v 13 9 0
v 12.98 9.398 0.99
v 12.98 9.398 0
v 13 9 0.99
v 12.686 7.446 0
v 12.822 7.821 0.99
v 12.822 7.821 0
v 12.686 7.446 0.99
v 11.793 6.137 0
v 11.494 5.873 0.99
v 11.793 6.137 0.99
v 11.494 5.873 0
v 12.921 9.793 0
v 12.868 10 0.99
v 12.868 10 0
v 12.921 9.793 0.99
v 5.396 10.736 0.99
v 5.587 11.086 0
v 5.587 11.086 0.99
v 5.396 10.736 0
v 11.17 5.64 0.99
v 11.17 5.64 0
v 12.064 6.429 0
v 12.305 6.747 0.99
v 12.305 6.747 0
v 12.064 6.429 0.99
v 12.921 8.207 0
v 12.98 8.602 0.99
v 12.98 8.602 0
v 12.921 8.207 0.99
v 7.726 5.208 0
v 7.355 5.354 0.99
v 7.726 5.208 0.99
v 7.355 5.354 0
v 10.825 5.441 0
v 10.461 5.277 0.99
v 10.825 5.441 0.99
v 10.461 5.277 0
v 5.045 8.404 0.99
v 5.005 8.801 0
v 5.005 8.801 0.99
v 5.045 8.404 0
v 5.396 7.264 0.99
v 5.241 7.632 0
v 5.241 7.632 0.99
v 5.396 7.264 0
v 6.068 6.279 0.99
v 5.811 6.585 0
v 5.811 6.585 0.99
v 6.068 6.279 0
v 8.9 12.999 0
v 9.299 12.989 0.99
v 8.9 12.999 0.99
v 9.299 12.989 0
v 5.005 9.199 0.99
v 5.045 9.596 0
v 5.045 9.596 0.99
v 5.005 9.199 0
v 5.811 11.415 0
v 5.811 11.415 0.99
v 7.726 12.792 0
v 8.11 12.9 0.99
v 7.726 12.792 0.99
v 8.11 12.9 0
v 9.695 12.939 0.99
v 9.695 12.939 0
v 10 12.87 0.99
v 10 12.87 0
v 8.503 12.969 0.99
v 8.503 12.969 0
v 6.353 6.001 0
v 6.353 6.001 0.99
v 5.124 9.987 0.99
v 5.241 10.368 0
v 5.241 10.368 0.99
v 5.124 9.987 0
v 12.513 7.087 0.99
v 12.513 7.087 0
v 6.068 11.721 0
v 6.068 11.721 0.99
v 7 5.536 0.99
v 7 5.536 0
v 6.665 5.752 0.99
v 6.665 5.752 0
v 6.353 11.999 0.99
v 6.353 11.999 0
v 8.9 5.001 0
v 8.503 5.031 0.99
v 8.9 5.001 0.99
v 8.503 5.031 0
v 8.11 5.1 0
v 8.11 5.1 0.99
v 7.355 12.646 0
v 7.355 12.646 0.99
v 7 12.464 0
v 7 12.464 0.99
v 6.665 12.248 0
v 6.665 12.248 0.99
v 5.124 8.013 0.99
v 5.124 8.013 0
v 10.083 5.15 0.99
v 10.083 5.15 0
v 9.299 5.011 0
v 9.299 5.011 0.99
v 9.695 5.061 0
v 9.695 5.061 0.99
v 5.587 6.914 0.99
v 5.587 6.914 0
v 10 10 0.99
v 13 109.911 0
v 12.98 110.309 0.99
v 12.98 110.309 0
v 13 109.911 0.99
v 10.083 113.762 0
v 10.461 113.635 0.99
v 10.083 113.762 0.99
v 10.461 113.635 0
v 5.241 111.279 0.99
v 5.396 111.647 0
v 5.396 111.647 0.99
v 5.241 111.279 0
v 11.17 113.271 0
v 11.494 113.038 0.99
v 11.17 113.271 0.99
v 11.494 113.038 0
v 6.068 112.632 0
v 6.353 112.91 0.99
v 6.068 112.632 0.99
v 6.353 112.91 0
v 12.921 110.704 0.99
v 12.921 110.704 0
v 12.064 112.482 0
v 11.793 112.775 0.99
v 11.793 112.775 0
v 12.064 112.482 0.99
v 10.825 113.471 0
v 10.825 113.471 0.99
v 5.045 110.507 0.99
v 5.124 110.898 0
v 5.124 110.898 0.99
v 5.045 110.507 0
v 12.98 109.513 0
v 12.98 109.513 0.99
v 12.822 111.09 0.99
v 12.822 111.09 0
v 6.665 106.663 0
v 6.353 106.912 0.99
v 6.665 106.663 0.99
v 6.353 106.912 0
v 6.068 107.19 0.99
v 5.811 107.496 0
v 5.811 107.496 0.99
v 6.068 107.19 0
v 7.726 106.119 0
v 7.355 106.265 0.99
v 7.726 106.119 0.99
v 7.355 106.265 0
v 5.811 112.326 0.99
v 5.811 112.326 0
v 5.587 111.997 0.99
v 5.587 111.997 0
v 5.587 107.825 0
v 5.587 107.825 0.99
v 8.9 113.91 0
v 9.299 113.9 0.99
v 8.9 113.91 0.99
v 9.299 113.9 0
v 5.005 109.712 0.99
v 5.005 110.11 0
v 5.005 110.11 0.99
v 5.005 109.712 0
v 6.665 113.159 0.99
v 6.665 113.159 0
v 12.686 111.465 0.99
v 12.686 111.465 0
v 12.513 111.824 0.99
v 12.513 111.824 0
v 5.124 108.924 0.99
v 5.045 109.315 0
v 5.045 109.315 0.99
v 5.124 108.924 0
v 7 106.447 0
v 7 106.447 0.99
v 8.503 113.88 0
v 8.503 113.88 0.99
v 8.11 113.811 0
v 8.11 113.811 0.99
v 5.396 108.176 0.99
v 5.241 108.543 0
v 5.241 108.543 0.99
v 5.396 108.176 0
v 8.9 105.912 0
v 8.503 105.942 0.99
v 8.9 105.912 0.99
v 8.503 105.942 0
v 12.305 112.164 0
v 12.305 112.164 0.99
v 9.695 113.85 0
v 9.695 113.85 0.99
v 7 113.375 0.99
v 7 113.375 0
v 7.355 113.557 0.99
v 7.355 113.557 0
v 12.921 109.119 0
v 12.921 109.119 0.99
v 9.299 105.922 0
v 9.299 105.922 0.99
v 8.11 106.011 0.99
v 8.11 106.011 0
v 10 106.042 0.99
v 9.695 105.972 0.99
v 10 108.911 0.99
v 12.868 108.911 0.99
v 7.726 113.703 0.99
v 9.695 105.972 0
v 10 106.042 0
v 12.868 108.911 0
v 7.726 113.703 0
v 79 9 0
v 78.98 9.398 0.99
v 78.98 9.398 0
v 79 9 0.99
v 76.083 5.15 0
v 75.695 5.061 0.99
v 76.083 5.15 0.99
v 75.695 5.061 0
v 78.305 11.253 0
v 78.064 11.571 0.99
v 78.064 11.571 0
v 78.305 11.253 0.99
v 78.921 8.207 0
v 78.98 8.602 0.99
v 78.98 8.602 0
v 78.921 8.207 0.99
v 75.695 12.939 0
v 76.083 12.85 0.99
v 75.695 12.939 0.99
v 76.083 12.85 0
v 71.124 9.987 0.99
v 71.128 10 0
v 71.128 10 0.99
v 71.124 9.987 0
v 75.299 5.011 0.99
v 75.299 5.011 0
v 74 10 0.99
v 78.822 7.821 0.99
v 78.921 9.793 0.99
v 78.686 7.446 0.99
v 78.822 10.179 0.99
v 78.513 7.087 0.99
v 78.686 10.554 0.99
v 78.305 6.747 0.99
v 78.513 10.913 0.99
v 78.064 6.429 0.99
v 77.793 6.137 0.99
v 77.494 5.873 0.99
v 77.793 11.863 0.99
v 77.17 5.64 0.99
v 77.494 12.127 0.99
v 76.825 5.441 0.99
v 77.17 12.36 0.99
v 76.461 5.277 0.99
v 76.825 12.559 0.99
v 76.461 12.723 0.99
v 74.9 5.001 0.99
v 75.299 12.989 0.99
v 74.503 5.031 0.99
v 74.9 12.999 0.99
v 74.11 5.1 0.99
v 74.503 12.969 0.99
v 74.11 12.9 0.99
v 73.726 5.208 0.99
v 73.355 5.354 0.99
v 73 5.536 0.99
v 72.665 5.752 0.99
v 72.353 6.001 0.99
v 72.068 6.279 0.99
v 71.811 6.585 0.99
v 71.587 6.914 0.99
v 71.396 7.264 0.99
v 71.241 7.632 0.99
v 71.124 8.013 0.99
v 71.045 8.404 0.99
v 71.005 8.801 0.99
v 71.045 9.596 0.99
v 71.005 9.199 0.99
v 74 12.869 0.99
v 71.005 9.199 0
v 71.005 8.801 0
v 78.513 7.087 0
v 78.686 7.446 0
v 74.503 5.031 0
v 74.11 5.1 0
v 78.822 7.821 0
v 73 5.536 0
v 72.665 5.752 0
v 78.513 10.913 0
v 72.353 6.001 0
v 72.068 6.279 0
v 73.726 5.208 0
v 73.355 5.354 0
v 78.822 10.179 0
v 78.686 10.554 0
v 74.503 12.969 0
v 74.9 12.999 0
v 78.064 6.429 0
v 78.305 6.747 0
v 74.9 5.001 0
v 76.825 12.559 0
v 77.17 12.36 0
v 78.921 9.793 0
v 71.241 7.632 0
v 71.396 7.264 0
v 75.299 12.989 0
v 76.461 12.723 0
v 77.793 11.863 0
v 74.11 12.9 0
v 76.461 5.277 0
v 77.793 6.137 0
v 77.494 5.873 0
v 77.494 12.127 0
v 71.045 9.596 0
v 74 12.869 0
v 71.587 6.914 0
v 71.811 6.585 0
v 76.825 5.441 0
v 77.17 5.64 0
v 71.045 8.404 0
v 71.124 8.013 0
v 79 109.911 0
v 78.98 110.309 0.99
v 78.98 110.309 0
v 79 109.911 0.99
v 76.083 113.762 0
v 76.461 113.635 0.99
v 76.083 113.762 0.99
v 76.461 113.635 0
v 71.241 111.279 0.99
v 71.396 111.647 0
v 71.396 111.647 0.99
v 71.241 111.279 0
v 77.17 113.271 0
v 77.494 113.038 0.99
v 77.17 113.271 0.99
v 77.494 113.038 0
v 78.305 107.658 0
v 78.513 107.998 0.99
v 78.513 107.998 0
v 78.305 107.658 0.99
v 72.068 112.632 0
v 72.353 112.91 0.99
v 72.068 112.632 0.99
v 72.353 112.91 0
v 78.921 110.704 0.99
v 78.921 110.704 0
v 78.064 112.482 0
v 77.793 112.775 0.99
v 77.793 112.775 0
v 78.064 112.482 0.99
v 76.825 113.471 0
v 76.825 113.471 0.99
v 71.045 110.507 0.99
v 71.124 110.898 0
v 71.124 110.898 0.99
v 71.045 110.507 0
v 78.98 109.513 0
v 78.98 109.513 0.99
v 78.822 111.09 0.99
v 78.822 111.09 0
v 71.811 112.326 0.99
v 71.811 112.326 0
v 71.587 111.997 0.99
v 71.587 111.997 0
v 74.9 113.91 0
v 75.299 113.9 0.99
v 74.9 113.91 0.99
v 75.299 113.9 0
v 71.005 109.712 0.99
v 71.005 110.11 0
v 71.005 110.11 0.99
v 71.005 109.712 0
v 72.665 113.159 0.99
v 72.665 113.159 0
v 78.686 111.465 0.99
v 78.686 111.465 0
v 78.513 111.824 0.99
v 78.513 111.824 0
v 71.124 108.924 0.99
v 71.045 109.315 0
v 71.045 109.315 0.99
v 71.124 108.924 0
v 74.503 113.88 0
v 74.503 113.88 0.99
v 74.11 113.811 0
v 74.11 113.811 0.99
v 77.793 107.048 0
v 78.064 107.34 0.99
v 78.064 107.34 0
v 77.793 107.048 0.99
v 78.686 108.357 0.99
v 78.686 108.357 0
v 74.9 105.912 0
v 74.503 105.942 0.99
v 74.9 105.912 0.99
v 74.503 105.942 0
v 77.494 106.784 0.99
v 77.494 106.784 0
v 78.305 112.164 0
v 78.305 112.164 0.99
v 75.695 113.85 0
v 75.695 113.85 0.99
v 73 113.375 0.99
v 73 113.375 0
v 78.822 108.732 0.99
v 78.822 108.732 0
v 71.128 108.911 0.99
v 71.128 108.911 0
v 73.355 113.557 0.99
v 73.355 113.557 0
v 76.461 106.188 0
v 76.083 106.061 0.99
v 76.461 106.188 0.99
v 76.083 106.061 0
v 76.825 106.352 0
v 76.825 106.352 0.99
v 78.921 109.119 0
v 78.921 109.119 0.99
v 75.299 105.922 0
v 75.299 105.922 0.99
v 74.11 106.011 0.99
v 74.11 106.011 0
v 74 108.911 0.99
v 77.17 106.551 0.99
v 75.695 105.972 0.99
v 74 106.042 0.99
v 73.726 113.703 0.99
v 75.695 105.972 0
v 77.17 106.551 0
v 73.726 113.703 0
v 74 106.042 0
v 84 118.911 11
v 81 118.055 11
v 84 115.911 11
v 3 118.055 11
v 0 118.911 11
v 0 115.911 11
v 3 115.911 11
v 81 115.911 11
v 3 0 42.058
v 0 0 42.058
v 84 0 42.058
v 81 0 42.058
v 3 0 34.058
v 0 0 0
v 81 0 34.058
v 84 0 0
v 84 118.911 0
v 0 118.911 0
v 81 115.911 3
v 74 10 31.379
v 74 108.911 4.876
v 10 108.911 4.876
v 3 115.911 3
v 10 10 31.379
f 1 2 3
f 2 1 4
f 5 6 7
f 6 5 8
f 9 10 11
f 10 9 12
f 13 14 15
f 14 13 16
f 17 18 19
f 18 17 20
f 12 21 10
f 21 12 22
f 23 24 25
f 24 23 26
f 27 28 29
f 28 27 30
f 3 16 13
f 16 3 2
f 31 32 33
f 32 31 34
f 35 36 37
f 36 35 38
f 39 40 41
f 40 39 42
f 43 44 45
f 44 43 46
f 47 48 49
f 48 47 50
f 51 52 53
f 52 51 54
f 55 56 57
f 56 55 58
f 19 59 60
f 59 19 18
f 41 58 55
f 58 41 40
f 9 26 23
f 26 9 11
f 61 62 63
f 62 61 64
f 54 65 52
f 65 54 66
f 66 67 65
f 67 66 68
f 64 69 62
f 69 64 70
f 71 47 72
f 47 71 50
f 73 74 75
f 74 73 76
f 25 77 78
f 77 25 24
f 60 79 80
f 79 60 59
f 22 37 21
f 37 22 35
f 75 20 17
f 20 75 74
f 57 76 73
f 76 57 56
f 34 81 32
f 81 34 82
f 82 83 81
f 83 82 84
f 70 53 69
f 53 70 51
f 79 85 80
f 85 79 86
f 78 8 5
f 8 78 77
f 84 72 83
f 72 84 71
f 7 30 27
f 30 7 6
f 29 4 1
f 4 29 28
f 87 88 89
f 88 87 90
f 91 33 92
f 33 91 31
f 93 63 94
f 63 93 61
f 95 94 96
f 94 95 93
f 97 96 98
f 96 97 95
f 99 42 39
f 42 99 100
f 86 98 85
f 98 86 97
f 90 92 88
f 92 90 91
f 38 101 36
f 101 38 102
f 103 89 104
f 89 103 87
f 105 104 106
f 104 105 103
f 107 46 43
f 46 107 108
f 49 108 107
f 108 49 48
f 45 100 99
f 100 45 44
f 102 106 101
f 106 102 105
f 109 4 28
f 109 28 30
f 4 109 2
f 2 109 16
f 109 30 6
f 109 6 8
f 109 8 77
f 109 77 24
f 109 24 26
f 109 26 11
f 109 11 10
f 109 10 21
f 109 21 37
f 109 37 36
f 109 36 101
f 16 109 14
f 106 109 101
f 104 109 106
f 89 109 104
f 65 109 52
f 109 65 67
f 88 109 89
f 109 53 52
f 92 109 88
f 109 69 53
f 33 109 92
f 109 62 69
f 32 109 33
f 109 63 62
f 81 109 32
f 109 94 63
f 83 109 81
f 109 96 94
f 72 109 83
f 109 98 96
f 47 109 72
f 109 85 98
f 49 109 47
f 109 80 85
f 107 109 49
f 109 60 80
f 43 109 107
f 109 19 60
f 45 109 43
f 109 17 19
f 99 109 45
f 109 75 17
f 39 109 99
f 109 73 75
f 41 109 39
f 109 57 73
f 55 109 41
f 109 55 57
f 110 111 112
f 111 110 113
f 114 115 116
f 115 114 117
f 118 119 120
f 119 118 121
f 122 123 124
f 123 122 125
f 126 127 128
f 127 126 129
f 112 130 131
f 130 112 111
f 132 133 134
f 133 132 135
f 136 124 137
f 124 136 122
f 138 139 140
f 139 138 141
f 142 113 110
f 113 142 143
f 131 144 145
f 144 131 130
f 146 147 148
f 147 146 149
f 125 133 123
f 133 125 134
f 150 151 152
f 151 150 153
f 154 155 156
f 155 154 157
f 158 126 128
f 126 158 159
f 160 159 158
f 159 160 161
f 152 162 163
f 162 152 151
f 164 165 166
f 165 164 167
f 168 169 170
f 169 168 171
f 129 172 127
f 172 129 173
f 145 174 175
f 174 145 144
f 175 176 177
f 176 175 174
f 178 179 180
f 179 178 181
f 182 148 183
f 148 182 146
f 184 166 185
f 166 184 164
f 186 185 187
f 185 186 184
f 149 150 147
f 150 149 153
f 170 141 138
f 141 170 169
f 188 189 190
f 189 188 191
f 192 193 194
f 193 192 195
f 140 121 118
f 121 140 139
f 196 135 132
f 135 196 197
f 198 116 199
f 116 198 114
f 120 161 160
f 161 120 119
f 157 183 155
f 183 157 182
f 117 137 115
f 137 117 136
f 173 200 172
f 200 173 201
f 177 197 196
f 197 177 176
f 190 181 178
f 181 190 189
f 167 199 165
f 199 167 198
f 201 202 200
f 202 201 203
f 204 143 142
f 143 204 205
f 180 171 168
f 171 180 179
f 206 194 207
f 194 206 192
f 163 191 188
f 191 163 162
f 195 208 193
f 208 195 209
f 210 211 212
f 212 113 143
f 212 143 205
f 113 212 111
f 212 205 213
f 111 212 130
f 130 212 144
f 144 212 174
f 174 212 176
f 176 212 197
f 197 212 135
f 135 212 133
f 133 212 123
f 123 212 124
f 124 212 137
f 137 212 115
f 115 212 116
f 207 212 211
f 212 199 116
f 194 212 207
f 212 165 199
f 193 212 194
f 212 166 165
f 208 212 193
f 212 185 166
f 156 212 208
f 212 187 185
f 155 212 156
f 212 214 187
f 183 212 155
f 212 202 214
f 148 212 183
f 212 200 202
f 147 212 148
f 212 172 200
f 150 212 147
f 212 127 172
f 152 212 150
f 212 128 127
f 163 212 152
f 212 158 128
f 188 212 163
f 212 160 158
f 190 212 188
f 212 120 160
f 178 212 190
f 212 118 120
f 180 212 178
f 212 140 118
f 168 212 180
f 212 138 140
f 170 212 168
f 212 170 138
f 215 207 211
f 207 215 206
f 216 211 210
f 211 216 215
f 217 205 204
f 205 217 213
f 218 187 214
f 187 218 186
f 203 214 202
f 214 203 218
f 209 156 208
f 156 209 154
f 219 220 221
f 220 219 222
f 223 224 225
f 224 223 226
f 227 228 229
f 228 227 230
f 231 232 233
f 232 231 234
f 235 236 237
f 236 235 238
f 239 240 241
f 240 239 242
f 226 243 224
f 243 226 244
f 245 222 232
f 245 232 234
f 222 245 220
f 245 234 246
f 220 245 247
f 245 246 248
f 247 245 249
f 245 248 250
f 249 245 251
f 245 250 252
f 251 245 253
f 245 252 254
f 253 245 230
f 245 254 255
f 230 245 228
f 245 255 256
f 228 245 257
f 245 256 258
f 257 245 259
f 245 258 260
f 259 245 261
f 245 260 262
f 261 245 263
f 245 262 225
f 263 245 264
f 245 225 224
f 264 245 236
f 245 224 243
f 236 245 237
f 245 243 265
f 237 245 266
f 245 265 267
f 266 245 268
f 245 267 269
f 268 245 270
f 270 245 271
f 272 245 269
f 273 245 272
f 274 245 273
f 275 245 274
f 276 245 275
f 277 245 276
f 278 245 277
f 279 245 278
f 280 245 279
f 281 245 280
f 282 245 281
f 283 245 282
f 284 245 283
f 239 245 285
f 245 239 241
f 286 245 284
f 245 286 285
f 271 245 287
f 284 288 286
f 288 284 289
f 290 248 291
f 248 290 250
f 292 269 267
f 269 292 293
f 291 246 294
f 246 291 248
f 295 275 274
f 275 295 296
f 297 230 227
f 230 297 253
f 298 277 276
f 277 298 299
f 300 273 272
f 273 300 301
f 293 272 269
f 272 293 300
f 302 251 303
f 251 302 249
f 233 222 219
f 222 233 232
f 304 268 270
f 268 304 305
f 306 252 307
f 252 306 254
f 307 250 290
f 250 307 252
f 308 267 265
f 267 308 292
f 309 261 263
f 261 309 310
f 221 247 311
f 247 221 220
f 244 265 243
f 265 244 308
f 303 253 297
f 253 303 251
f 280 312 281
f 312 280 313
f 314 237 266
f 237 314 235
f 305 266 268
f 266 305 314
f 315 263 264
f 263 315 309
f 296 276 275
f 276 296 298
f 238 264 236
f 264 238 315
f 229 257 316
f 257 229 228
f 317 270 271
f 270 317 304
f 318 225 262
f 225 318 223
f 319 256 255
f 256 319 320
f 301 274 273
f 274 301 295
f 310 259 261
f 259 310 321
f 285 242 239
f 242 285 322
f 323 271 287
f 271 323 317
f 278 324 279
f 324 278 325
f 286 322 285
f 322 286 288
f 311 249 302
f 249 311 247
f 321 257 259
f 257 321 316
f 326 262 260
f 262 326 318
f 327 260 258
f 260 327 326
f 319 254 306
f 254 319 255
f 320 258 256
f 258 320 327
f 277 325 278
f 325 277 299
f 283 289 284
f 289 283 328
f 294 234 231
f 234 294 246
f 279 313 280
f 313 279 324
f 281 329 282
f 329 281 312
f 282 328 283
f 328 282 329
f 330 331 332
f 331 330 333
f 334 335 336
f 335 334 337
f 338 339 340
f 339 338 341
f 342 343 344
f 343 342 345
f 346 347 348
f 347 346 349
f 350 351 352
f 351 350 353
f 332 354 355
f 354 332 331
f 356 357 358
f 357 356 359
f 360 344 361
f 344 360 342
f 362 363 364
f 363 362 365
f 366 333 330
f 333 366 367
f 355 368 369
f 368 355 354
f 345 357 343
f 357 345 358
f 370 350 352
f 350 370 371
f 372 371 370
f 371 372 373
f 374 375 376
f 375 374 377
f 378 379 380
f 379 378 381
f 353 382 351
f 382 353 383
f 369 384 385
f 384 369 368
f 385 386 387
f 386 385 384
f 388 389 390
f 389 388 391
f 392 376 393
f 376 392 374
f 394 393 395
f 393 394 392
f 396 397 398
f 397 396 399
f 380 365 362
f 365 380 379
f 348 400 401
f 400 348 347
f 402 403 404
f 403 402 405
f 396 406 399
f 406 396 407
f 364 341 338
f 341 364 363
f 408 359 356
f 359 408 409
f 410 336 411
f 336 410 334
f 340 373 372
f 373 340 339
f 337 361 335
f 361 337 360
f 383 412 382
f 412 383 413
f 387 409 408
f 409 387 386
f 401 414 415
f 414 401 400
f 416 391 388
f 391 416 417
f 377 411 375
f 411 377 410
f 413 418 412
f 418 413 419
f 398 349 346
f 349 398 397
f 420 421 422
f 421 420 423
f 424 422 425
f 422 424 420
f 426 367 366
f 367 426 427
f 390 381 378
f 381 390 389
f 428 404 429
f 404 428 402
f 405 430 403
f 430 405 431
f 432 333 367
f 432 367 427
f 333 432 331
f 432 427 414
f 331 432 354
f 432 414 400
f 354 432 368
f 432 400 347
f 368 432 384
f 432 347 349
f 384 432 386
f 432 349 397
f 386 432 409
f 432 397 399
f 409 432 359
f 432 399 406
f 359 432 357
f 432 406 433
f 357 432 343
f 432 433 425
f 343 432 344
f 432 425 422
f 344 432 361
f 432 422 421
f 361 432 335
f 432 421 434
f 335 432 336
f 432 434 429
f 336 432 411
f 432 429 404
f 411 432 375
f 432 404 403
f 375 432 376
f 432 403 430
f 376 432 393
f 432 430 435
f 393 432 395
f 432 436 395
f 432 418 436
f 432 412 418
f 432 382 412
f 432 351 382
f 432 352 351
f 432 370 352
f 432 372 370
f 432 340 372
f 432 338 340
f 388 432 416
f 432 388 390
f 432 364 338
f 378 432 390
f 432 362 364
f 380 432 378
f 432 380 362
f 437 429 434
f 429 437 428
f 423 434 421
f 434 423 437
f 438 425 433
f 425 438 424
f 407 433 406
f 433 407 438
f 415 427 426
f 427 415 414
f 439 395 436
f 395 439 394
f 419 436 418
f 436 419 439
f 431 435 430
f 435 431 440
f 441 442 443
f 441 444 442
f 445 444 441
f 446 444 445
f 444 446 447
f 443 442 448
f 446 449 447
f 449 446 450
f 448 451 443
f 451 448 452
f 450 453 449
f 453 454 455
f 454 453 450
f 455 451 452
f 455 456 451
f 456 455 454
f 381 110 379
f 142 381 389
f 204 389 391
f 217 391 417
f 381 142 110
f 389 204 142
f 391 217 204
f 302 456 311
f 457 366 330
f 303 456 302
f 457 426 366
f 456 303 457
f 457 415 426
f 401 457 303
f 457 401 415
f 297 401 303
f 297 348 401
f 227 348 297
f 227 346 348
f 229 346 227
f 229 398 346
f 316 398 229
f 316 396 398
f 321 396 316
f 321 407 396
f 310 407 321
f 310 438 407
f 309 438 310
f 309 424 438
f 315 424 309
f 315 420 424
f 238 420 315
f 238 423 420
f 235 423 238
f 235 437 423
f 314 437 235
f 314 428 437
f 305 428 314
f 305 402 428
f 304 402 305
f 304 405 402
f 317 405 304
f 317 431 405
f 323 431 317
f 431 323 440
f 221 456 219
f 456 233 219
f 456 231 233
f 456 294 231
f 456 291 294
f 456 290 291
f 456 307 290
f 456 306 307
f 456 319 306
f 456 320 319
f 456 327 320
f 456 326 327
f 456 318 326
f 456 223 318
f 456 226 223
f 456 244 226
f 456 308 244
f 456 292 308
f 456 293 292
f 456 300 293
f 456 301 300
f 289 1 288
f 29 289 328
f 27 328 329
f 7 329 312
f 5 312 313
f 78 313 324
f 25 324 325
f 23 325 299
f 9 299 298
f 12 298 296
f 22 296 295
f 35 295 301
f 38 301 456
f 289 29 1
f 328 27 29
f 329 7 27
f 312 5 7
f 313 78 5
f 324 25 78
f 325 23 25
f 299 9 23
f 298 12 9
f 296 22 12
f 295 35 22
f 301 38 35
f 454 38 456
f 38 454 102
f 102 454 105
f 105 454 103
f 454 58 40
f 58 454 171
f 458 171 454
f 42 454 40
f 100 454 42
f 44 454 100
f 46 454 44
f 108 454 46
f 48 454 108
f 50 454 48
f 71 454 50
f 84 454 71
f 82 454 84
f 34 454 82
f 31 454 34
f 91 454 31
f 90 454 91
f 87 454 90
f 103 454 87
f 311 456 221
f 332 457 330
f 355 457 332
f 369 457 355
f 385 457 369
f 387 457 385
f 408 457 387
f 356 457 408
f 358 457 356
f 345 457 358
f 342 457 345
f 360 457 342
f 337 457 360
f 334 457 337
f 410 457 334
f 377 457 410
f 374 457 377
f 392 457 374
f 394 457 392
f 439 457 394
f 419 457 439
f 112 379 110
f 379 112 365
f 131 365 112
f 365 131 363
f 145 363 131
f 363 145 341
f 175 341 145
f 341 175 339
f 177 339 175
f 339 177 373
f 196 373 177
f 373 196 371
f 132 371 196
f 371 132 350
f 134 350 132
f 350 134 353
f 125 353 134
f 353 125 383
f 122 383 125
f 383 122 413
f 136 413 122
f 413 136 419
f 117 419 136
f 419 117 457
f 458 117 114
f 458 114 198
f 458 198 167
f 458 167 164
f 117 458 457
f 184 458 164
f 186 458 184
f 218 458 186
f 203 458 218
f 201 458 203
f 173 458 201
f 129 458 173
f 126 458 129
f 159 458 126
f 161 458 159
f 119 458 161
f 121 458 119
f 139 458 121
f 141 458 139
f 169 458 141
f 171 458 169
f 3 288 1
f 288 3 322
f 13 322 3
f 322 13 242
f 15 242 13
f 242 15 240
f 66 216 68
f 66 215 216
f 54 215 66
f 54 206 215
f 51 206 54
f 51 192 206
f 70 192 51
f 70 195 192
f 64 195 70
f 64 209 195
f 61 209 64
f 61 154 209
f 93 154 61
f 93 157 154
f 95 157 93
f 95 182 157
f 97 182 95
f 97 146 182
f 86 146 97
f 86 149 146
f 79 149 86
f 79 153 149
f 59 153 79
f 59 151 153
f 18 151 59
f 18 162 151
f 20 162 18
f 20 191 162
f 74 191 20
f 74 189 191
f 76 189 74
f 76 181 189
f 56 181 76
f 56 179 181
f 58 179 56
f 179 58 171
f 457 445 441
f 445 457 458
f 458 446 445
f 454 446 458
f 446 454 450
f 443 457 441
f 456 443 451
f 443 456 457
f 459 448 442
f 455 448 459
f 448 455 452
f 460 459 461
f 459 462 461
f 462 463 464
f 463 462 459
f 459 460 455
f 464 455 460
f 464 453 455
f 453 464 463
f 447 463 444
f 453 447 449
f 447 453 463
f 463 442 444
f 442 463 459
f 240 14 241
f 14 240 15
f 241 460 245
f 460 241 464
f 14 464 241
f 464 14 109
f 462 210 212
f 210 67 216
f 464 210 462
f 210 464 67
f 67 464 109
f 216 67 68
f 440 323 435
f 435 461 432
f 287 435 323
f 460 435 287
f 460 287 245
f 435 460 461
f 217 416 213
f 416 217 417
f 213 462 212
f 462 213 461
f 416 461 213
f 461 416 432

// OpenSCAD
// file: lib/shapes.scad
// Shared geometry helpers.
//
// Plain CSG only — cube, cylinder, union, difference. No minkowski(), no
// hull(). Both are slower, and neither has a clean B-rep equivalent, which
// would make a later port to CadQuery/Fusion (for editable STEP output) much
// more painful than it needs to be. Everything here maps one-to-one onto any
// CAD kernel. See the note at the top of params.scad.

// A slab with vertical rounded corners: four corner cylinders plus two
// crossing cubes filling the middle.
module rounded_slab(l, w, h, r) {
  union() {
    for (x = [r, l - r])
      for (y = [r, w - r])
        translate([x, y, 0])
          cylinder(h = h, r = r);
    translate([r, 0, 0]) cube([l - 2 * r, w, h]);
    translate([0, r, 0]) cube([l, w - 2 * r, h]);
  }
}

// A screw boss: a cylinder with a pilot hole down its axis.
//
// `pilot_inset` leaves a short solid plug at the bottom so the screw tip
// cannot punch through the floor and stand proud underneath, which would rock
// the box on the desk.
module screw_boss(h, od, pilot_d, pilot_inset = 1.5) {
  difference() {
    cylinder(h = h, d = od);
    translate([0, 0, pilot_inset])
      cylinder(h = h - pilot_inset + 0.1, d = pilot_d);
  }
}

// A post that a PCB screws down onto. Same idea as screw_boss but sized for
// the small self-tappers that hold modules rather than the lid.
module pcb_post(h, od, pilot_d) {
  screw_boss(h, od, pilot_d, 1.0);
}

// A row of vertical ventilation slots, centred on the origin in X, extruded
// along +Y far enough to cut through a wall.
//
// Slots rather than round holes: at a 0.4 mm nozzle a 2 mm slot prints with
// clean vertical walls, while small circles come out ragged and undersized.
module vent_slots(n, slot_w, slot_l, gap, cut_depth) {
  total_w = n * slot_w + (n - 1) * gap;
  for (i = [0 : n - 1])
    translate([-total_w / 2 + i * (slot_w + gap), -0.5, 0])
      cube([slot_w, cut_depth + 1, slot_l]);
}

// A grid of round sound holes for the buzzer, centred on the origin, cutting
// along +Y.
//
// 2.0 mm holes, not 1.5: below about 2 mm a 0.4 mm nozzle renders circles
// ragged and undersized, and a blocked-sounding buzzer is a support call.
module sound_holes(n, hole_d, pitch, cut_depth) {
  span = (n - 1) * pitch;
  for (i = [0 : n - 1])
    for (j = [0 : n - 1])
      translate([-span / 2 + i * pitch, 0, -span / 2 + j * pitch])
        rotate([-90, 0, 0])
          cylinder(h = cut_depth + 1, d = hole_d);
}

// Two small holes for threading a zip tie, so a tug on the USB cable loads
// the box rather than the ESP32's connector.
module ziptie_holes(spacing, hole_w, hole_h, cut_depth) {
  for (x = [-spacing / 2, spacing / 2])
    translate([x - hole_w / 2, -0.5, 0])
      cube([hole_w, cut_depth + 1, hole_h]);
}
// main file
// LearnLife NFC Attender — desk stand
// ===================================
//
// A wedge cradle the assembled box drops into. Separate from the enclosure on
// purpose: the tilt becomes a one-parameter reprint of a cheap part, and if it
// turns out to be wrong the box still works sitting flat.
//
// ── WHICH WAY IT TILTS, AND WHY ──────────────────────────────────────────
//
// The FRONT is raised, so the box leans AWAY from the user.
//
// That looks backwards until you think about where the display is. The OLED is
// in the box's front wall — vertical when the box sits flat. Someone standing
// at a desk looks DOWN at the device, so a vertical face is seen at a glancing
// angle and reads poorly. Leaning the box back rotates that face toward the
// viewer's actual line of sight.
//
// The tap surface wants the opposite tilt, which is the real tension here — but
// tapping is done by feel and works at any angle, while reading does not. So
// the display wins.
//
// ── THE COST OF ANGLE ────────────────────────────────────────────────────
//
// Rise at the front is depth x sin(angle), and this box is deep:
//
//     8 deg  ->  17 mm rise,  58 mm total height
//    10 deg  ->  21 mm rise,  62 mm total height
//    12 deg  ->  25 mm rise,  66 mm total height
//    15 deg  ->  31 mm rise,  72 mm total height   <- stand_angle default
//    20 deg  ->  41 mm rise,  82 mm total height
//
// 15 degrees is assertive on a 119 mm deep box — it nearly doubles the height
// and the stand ends up using about as much filament as the enclosure. If it
// looks top-heavy in `./view.sh stand`, try 10: change stand_angle and
// re-render, nothing else moves.
//
// ── PRINT ────────────────────────────────────────────────────────────────
//
//   Flat on its base, as modelled. No supports — every overhang is either the
//   shallow underside relief or the incline itself.
//
//   openscad -o stl/stand.stl stand.scad

include <params.scad>
use <lib/shapes.scad>

// ══ DERIVED ══════════════════════════════════════════════════════════════

ext_x = box_ix + 2 * wall_t;
ext_y = box_iy + 2 * wall_t;
ext_z = floor_t + box_iz;

// Clearance so the box drops in rather than being pressed in — this is a
// cradle, not an interference fit.
cradle_fit = 0.6;

cradle_x = ext_x + 2 * cradle_fit;
cradle_y = ext_y + 2 * cradle_fit;

// Solid material left UNDER the cradle at its lowest point (the back).
//
// Not cosmetic. Without it the cradle's back edge lands exactly on the wedge's
// bottom face, leaving a zero-thickness knife edge: newer OpenSCAD silently
// repairs that, OpenSCAD 2021.01 (what CI runs) correctly rejects the result as
// non-manifold, and a slicer would make a mess of it either way.
stand_floor_t = 3;

rise   = cradle_y * sin(stand_angle);   // how high the front sits
d_proj = cradle_y * cos(stand_angle);   // depth once tilted

W = cradle_x + 2 * stand_wall_t;
D = d_proj + stand_wall_t;              // + back stop

// Relief pocket under the wedge. Saves a lot of filament on what is otherwise
// a solid triangular block, and shortens the print considerably.
relief_inset = max(stand_wall_t + 4, foot_d + 2);
relief_h_margin = 5;

$fa = 1;
$fs = 0.4;

// ══ CHECKS ═══════════════════════════════════════════════════════════════

assert(stand_angle > 0 && stand_angle < 45,
       "stand_angle must be between 0 and 45 degrees.");

assert(stand_lip_h < ext_z * 0.5,
       str("stand_lip_h (", stand_lip_h, ") is more than half the box height — ",
           "the cradle would swallow the display."));

assert(relief_inset > foot_d / 2 + foot_inset - foot_d / 2,
       "Foot recesses would fall outside the wall and cut into the hollow.");

echo(str("[stand] ", stand_angle, " deg: front rises ", rise,
         "mm, assembled height ", rise + ext_z,
         "mm, footprint ", W, " x ", D, "mm"));

// ══ ENTRY POINT ══════════════════════════════════════════════════════════

stand();

module stand() {
  difference() {
    wedge();
    box_cradle();
    underside_relief();
    foot_recesses();
  }
}

// The body: a trapezoid in the YZ plane, extruded across the width.
//
// Its top edge runs from (front, rise + lip) down to (back, lip) — the incline
// the box rests on, offset upward by stand_lip_h so the leftover material at
// the sides and back becomes a retaining lip.
module wedge() {
  translate([0, 0, 0])
    rotate([90, 0, 90])
      linear_extrude(height = W)
        polygon([
          [0, 0],                                     // front bottom
          [D, 0],                                     // back bottom
          [D, stand_floor_t + stand_lip_h],           // back stop, top
          [d_proj, stand_floor_t + stand_lip_h],      // stop meets the incline
          [0, stand_floor_t + rise + stand_lip_h],    // front top
        ]);
}

// The box itself, tilted into position and oversized, carved out of the wedge.
// Everything it removes is the cradle; what survives beside and behind it is
// the lip.
module box_cradle() {
  // Overshoot forward and upward so every face of this cutter exits the wedge
  // cleanly instead of grazing one.
  //
  // Two grazing contacts had to be designed out, and both rendered as a valid
  // solid on a modern OpenSCAD while OpenSCAD 2021.01 (what CI runs) correctly
  // rejected them:
  //   - the cutter's back-bottom edge landed exactly on the wedge's bottom
  //     face  -> fixed by stand_floor_t, which also gives the cradle a floor
  //   - the cutter's front-bottom edge lay exactly in the wedge's front face
  //     plane -> fixed by the overshoot below
  //
  // A cut that merely touches a surface is ambiguous: is the result open or
  // closed there? Overshooting removes the question.
  overshoot = 20;
  translate([stand_wall_t, 0, stand_floor_t + cradle_y * sin(stand_angle)])
    rotate([-stand_angle, 0, 0])
      translate([0, -overshoot, 0])
        cube([cradle_x, cradle_y + overshoot, ext_z + overshoot]);
}

// Hollow out the middle of the wedge from below. The walls that remain follow
// the same profile, so the part still looks solid from every visible angle.
module underside_relief() {
  translate([relief_inset, 0, -0.01])
    rotate([90, 0, 90])
      linear_extrude(height = W - 2 * relief_inset)
        polygon([
          [relief_inset, 0],
          [D - relief_inset, 0],
          [D - relief_inset,
           max(stand_floor_t + stand_lip_h - relief_h_margin, 0.5)],
          [relief_inset,
           max(stand_floor_t + rise + stand_lip_h - relief_h_margin, 0.5)],
        ]);
}

// Stick-on rubber feet, recessed so they can't peel off by catching the desk.
module foot_recesses() {
  for (x = [foot_inset, W - foot_inset])
    for (y = [foot_inset, D - foot_inset])
      translate([x, y, -0.01])
        cylinder(h = foot_recess_h, d = cut(foot_d));
}
